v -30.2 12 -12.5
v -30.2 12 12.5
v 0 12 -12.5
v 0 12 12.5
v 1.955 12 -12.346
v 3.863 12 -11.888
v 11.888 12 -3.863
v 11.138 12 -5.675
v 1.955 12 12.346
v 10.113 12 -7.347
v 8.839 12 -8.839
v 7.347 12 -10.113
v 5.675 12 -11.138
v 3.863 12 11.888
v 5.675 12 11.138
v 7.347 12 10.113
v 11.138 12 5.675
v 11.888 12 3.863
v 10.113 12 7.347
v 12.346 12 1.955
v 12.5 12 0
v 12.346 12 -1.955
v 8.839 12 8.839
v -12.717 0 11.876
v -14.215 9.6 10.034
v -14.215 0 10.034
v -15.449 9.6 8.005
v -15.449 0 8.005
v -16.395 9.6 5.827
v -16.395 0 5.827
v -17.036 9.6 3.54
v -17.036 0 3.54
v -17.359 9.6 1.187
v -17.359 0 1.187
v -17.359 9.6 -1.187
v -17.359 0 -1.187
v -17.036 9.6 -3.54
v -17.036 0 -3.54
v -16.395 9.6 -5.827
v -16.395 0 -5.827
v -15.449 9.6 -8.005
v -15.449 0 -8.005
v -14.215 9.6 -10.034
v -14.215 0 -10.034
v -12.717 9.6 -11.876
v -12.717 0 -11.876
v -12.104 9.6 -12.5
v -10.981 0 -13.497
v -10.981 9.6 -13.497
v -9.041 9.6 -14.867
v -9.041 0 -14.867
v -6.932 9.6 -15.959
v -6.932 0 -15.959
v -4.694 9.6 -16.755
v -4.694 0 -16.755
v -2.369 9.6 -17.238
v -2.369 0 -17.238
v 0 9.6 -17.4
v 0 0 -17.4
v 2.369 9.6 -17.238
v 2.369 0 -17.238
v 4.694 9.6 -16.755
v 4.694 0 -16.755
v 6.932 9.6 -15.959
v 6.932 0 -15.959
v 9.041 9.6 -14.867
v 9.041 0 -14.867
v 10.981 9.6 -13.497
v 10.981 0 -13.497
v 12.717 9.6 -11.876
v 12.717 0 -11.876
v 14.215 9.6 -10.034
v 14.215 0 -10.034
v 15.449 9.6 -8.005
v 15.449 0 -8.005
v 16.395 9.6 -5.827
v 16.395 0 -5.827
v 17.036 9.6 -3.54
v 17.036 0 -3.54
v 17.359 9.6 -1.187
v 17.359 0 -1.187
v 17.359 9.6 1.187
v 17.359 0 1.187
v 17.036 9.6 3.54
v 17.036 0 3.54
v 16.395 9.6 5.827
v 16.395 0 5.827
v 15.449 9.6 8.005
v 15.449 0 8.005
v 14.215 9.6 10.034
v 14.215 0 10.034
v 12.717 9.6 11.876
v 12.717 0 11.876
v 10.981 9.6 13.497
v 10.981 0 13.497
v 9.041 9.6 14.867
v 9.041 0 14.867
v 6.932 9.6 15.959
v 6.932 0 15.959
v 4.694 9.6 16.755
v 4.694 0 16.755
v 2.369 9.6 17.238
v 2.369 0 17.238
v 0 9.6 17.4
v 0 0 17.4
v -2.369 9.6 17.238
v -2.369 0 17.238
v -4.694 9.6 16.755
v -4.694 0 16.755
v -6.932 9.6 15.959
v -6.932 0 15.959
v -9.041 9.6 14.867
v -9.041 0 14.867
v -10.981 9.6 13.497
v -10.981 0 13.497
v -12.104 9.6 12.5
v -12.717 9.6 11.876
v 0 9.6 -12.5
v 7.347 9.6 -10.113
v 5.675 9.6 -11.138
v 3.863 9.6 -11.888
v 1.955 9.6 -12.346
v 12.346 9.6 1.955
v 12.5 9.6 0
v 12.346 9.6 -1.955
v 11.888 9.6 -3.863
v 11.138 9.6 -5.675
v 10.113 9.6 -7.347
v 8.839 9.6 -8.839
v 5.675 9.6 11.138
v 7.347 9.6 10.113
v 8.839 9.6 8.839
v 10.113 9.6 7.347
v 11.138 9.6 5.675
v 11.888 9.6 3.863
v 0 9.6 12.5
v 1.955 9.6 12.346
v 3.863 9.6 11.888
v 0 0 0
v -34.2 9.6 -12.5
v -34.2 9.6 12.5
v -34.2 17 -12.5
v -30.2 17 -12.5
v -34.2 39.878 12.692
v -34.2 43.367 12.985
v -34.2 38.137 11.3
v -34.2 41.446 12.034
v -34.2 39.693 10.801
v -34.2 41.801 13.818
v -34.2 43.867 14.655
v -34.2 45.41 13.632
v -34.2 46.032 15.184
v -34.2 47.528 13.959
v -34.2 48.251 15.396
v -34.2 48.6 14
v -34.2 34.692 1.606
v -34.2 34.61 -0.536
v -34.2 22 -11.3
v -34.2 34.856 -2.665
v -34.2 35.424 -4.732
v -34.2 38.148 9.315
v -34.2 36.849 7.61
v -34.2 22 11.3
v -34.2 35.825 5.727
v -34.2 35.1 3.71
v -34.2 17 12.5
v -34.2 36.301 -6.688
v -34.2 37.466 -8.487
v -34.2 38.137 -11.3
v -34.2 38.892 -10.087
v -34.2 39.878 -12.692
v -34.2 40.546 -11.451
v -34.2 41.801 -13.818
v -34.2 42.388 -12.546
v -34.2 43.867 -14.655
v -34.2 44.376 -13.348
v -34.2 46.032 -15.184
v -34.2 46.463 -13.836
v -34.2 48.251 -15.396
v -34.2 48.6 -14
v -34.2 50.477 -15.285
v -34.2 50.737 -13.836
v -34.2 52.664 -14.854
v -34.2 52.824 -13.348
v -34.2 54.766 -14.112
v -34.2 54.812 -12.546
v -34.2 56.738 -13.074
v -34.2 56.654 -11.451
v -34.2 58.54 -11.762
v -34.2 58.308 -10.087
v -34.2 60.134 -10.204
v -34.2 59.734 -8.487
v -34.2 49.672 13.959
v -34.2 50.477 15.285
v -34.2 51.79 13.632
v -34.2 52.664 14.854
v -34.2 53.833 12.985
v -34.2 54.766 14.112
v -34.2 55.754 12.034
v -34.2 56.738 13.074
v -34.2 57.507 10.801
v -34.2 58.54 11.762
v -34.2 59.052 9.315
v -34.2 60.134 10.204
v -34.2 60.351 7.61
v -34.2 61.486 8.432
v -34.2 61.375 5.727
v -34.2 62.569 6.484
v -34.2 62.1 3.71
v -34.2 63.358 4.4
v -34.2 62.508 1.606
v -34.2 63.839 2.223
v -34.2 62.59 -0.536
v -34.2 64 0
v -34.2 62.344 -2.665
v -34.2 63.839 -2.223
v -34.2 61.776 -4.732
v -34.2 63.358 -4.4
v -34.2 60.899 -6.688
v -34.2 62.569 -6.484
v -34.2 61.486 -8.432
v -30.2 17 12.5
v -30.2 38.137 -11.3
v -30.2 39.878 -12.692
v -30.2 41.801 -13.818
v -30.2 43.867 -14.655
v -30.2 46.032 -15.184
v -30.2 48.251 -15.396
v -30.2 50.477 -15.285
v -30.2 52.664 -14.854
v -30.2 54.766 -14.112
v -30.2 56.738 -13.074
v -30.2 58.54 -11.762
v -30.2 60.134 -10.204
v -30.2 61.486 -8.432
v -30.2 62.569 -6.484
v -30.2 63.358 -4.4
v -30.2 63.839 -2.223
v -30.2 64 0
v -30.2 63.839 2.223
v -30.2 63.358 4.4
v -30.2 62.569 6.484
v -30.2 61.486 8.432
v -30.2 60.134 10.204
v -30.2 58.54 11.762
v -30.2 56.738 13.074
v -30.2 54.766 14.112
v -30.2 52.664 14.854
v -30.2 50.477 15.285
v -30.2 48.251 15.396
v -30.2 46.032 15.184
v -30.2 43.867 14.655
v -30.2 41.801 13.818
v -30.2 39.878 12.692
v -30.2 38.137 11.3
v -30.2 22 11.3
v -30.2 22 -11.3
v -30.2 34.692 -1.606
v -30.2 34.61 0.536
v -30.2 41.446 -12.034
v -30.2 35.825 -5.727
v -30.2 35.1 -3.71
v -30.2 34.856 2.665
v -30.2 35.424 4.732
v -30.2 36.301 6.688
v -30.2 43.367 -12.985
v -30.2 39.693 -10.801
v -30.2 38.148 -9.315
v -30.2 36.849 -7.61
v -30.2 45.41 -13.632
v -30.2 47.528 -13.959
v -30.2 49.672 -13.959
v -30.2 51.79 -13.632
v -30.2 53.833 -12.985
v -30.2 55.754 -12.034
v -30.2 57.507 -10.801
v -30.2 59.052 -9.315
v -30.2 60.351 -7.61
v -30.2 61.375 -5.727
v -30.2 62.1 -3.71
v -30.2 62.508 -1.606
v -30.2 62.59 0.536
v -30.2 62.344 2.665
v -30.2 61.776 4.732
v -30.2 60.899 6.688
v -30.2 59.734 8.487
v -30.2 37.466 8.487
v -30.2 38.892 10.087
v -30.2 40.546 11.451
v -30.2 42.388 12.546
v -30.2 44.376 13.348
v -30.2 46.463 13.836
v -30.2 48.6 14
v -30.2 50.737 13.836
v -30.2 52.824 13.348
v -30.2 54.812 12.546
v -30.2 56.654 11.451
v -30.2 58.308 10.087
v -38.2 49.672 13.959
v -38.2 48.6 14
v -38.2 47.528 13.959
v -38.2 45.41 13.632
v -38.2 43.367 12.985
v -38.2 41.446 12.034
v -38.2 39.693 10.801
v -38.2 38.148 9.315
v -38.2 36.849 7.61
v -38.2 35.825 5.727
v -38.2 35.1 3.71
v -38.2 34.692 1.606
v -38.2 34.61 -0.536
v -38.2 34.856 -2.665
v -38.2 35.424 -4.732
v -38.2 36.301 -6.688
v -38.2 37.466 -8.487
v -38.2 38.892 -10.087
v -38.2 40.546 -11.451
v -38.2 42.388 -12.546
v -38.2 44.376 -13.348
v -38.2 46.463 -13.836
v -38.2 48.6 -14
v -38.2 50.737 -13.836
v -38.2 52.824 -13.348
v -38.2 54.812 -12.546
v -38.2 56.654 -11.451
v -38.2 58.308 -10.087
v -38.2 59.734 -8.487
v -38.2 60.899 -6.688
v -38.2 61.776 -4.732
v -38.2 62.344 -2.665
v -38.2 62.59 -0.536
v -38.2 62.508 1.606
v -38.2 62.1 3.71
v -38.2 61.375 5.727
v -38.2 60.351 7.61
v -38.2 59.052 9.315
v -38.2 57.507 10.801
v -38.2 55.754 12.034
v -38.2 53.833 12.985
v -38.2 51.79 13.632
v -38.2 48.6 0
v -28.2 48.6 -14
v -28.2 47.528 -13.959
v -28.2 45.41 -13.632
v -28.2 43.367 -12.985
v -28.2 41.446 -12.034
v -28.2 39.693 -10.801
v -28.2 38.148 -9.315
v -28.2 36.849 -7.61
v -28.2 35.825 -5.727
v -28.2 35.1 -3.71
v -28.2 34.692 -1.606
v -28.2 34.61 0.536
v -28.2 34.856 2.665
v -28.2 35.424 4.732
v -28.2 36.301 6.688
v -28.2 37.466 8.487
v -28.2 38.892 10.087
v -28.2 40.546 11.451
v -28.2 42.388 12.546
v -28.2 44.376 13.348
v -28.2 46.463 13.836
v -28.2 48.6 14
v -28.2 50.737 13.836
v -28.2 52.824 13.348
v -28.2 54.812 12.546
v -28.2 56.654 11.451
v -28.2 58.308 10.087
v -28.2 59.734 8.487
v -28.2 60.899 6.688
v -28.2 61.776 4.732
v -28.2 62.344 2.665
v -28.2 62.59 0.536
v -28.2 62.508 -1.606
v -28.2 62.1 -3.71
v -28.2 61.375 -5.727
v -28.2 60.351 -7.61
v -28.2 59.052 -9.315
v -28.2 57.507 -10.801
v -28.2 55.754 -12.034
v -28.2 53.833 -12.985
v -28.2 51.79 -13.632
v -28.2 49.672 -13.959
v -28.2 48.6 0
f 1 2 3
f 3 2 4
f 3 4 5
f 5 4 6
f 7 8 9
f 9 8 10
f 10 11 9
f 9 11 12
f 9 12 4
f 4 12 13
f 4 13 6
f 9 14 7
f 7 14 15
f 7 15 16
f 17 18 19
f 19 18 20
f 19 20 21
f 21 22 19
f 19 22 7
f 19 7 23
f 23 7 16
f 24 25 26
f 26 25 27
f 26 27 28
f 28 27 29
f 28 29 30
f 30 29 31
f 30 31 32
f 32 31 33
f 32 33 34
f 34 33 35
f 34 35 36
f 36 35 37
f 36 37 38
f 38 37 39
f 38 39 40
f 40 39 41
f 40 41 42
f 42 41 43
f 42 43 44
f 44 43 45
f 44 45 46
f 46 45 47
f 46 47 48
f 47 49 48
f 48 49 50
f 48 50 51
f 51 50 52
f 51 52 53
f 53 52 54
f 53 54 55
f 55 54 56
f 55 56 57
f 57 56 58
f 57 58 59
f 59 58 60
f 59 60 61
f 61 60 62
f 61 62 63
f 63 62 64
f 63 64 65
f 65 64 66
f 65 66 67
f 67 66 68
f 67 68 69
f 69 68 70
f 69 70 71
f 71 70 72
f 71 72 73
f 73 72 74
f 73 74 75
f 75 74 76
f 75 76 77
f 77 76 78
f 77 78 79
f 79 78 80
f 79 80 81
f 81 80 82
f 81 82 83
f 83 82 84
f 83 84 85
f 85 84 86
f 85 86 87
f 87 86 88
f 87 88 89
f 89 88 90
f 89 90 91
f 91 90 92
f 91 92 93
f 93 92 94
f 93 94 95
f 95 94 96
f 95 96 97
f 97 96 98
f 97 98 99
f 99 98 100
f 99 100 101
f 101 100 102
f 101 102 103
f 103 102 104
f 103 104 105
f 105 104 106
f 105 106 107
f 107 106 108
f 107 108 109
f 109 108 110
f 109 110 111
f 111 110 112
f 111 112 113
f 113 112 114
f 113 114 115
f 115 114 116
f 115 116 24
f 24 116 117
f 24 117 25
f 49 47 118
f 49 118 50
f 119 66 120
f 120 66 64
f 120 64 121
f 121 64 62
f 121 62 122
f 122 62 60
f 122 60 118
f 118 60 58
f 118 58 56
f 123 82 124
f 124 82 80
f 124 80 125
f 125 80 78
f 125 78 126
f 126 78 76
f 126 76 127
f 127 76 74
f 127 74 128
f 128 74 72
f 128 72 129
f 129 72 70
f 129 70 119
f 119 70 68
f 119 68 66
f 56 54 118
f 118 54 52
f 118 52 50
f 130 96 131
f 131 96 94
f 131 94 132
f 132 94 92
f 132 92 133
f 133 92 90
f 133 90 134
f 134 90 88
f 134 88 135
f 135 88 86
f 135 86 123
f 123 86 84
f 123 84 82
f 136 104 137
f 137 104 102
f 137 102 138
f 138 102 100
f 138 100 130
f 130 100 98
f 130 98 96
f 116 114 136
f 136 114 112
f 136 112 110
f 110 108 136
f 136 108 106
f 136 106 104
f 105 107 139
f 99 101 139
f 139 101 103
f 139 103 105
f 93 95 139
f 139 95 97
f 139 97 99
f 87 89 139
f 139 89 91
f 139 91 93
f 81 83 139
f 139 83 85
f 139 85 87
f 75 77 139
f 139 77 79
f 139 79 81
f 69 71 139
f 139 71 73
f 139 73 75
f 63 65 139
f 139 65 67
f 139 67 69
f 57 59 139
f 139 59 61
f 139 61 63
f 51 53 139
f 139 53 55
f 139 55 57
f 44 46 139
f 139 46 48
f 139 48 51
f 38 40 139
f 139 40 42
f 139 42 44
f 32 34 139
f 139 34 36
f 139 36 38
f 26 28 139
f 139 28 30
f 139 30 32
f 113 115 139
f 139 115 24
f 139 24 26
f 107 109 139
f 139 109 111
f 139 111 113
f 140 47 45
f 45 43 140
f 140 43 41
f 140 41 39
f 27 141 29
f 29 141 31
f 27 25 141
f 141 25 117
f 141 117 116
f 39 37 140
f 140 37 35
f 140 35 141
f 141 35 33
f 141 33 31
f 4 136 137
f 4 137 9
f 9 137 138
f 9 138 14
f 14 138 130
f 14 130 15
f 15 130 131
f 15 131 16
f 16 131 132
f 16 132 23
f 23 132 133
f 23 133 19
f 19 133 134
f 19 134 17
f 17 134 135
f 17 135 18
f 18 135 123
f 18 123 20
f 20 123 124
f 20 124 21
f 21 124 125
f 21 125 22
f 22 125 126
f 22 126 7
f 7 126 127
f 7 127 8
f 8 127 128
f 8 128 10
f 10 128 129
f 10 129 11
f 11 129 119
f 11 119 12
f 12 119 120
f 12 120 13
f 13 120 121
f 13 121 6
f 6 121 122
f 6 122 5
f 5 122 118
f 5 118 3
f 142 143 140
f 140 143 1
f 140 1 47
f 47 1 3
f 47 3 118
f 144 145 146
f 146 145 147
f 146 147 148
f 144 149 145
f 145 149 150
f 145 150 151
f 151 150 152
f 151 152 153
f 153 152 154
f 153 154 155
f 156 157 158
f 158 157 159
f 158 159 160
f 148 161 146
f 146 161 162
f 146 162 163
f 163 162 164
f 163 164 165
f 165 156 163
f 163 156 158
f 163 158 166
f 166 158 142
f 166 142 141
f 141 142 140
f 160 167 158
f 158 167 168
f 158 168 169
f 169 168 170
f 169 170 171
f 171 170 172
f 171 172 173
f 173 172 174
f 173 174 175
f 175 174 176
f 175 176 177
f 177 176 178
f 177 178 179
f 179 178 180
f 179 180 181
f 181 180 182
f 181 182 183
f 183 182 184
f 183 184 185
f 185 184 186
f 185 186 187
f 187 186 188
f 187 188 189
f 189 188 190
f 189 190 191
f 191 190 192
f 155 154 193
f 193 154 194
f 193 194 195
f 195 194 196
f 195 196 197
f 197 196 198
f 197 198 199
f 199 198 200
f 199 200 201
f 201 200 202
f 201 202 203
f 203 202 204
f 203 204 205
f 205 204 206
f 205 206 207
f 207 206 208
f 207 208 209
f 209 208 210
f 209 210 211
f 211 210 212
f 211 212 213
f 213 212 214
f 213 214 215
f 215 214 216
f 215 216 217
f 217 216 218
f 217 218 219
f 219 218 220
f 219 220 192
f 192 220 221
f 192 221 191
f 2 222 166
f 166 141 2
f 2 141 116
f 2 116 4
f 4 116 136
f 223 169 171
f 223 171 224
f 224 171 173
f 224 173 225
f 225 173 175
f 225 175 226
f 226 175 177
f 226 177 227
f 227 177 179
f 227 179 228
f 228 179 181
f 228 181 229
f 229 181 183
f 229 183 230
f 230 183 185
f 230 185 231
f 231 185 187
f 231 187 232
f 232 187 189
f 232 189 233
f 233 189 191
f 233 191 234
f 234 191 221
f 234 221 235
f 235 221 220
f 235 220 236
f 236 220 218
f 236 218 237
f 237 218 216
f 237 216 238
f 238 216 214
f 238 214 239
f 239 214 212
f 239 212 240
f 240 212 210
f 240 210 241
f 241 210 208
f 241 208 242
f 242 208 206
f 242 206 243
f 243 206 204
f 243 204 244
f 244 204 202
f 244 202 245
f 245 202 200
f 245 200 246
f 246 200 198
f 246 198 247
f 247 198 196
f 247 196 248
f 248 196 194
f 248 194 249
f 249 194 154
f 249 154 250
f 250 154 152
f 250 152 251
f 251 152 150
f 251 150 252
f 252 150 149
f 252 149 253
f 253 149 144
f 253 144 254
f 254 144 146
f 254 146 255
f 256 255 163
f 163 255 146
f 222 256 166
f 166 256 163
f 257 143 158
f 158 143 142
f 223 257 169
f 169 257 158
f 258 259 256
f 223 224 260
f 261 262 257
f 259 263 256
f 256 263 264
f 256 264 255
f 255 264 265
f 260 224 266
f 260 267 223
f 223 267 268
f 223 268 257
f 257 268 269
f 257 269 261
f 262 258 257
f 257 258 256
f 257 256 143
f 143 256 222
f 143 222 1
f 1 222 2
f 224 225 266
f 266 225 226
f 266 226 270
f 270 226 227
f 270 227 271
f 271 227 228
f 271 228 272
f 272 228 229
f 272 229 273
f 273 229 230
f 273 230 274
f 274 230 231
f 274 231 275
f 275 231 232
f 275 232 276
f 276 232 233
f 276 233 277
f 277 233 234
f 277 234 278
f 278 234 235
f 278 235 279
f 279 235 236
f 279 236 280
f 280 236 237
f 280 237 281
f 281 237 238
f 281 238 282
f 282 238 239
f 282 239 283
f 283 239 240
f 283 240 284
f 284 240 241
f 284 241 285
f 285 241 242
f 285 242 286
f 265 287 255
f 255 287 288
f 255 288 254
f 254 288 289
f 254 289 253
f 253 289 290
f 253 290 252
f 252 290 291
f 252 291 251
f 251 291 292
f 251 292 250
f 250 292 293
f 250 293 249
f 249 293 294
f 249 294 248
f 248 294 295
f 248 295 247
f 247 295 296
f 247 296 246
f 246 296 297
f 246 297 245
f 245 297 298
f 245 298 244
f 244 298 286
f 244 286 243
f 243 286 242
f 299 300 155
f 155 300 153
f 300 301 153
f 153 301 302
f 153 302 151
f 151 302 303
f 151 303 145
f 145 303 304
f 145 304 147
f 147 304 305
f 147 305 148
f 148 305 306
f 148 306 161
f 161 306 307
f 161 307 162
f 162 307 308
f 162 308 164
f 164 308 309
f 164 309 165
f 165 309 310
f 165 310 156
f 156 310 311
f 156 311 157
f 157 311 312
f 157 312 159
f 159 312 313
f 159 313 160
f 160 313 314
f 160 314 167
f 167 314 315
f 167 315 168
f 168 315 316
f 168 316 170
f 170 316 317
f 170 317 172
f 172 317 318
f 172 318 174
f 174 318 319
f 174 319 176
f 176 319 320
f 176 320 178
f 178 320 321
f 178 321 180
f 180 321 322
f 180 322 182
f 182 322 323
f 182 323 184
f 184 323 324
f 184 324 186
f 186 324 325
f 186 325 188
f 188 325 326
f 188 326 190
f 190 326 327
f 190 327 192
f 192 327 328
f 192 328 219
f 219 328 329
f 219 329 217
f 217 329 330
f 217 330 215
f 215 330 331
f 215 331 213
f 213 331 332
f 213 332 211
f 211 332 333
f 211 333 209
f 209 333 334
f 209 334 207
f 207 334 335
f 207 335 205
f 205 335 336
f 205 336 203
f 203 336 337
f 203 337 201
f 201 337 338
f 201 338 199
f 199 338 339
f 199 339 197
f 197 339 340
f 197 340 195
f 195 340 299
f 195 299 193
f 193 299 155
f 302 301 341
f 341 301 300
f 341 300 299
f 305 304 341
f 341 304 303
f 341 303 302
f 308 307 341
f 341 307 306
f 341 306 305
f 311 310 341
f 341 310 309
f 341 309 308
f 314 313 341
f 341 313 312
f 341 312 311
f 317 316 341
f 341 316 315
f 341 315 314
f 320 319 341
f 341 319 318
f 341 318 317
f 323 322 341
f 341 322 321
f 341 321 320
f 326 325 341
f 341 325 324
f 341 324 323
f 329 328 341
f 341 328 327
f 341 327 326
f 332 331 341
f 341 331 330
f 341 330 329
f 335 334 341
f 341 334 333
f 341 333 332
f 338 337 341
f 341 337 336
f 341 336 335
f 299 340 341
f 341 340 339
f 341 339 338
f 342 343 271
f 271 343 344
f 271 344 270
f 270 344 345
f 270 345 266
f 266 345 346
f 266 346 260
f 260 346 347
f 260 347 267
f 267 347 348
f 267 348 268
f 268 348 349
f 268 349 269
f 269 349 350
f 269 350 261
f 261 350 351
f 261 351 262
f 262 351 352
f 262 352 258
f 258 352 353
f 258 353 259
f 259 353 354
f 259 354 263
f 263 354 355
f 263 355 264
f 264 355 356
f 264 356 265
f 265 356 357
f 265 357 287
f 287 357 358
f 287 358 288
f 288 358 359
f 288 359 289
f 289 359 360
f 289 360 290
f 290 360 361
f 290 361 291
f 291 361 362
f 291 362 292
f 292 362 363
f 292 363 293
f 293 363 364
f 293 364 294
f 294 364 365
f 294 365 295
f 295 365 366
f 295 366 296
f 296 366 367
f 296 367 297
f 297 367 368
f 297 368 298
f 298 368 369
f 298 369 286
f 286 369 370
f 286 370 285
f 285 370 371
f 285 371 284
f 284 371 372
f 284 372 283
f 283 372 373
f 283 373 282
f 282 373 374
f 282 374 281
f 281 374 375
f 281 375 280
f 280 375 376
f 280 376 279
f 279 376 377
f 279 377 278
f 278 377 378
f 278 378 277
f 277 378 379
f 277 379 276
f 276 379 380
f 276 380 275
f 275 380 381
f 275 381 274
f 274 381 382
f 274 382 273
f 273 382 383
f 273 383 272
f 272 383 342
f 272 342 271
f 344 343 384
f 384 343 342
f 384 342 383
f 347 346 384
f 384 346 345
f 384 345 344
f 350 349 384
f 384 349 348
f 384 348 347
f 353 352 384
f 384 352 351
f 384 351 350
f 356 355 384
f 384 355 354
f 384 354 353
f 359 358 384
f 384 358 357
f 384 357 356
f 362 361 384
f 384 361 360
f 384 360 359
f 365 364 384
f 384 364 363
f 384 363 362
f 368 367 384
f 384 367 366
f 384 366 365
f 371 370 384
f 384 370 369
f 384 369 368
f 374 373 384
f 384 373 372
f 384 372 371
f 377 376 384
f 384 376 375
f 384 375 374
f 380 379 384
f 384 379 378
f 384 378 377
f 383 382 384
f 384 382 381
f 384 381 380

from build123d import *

# Parameters (mm, degrees)
SKETCH1_R           = 17.4
BOSS_EXTRUDE1_DEPTH = 9.6
BOSS_EXTRUDE2_DEPTH = 2.4
BOSS_EXTRUDE3_DEPTH = 4
SKETCH6_R           = 14
BOSS_EXTRUDE4_DEPTH = 4
BOSS_EXTRUDE5_START = 2
SKETCH7_R           = 14
BOSS_EXTRUDE5_DEPTH = 2


with BuildPart() as part:
    # Sketch1 → Boss-Extrude1 (new body)
    with BuildSketch(Plane(origin=(0, 0, 0), x_dir=(1, 0, 0), z_dir=(0, 1, 0))):
        with Locations(Location((0, 0, 0), (0, 0, 270))):
            Circle(SKETCH1_R)
    extrude(amount=BOSS_EXTRUDE1_DEPTH)

    # Sketch2 → Boss-Extrude2 (add)
    with BuildSketch(Plane(origin=(0, 9.6, 0), x_dir=(1, 0, 0), z_dir=(0, 1, 0))):
        with BuildLine():
            Line((0, -12.5), (-34.2, -12.5))
            Line((-34.2, -12.5), (-34.2, 12.5))
            Line((-34.2, 12.5), (0, 12.5))
            ThreePointArc((0, 12.5), (12.5, 0), (0, -12.5))
        make_face()
    extrude(amount=BOSS_EXTRUDE2_DEPTH)

    # Sketch5 → Boss-Extrude3 (add)
    with BuildSketch(Plane.ZY.offset(34.2)):
        with BuildLine():
            Line((11.3, 22), (11.3, 38.137208785))
            ThreePointArc((11.3, 38.137208785), (0, 64), (-11.3, 38.137208785))
            Line((-11.3, 38.137208785), (-11.3, 22))
            Line((-11.3, 22), (-12.5, 17))
            Line((-12.5, 17), (-12.5, 12))
            Line((-12.5, 12), (12.5, 12))
            Line((12.5, 12), (12.5, 17))
            Line((12.5, 17), (11.3, 22))
        make_face()
    extrude(amount=-BOSS_EXTRUDE3_DEPTH)

    # Sketch6 → Boss-Extrude4 (add)
    with BuildSketch(Plane.ZY.offset(34.2)):
        with Locations((0, 48.6)):
            Circle(SKETCH6_R)
    extrude(amount=BOSS_EXTRUDE4_DEPTH)

    # Sketch7 → Boss-Extrude5 (add)
    with BuildSketch(Plane(origin=(-30.2, 0, 0), x_dir=(0, 0, -1), z_dir=(1, 0, 0)).offset(BOSS_EXTRUDE5_START)):
        with Locations(Location((0, 48.6, 0), (0, 0, 180))):
            Circle(SKETCH7_R)
    extrude(amount=-BOSS_EXTRUDE5_DEPTH)


solid = part.part
